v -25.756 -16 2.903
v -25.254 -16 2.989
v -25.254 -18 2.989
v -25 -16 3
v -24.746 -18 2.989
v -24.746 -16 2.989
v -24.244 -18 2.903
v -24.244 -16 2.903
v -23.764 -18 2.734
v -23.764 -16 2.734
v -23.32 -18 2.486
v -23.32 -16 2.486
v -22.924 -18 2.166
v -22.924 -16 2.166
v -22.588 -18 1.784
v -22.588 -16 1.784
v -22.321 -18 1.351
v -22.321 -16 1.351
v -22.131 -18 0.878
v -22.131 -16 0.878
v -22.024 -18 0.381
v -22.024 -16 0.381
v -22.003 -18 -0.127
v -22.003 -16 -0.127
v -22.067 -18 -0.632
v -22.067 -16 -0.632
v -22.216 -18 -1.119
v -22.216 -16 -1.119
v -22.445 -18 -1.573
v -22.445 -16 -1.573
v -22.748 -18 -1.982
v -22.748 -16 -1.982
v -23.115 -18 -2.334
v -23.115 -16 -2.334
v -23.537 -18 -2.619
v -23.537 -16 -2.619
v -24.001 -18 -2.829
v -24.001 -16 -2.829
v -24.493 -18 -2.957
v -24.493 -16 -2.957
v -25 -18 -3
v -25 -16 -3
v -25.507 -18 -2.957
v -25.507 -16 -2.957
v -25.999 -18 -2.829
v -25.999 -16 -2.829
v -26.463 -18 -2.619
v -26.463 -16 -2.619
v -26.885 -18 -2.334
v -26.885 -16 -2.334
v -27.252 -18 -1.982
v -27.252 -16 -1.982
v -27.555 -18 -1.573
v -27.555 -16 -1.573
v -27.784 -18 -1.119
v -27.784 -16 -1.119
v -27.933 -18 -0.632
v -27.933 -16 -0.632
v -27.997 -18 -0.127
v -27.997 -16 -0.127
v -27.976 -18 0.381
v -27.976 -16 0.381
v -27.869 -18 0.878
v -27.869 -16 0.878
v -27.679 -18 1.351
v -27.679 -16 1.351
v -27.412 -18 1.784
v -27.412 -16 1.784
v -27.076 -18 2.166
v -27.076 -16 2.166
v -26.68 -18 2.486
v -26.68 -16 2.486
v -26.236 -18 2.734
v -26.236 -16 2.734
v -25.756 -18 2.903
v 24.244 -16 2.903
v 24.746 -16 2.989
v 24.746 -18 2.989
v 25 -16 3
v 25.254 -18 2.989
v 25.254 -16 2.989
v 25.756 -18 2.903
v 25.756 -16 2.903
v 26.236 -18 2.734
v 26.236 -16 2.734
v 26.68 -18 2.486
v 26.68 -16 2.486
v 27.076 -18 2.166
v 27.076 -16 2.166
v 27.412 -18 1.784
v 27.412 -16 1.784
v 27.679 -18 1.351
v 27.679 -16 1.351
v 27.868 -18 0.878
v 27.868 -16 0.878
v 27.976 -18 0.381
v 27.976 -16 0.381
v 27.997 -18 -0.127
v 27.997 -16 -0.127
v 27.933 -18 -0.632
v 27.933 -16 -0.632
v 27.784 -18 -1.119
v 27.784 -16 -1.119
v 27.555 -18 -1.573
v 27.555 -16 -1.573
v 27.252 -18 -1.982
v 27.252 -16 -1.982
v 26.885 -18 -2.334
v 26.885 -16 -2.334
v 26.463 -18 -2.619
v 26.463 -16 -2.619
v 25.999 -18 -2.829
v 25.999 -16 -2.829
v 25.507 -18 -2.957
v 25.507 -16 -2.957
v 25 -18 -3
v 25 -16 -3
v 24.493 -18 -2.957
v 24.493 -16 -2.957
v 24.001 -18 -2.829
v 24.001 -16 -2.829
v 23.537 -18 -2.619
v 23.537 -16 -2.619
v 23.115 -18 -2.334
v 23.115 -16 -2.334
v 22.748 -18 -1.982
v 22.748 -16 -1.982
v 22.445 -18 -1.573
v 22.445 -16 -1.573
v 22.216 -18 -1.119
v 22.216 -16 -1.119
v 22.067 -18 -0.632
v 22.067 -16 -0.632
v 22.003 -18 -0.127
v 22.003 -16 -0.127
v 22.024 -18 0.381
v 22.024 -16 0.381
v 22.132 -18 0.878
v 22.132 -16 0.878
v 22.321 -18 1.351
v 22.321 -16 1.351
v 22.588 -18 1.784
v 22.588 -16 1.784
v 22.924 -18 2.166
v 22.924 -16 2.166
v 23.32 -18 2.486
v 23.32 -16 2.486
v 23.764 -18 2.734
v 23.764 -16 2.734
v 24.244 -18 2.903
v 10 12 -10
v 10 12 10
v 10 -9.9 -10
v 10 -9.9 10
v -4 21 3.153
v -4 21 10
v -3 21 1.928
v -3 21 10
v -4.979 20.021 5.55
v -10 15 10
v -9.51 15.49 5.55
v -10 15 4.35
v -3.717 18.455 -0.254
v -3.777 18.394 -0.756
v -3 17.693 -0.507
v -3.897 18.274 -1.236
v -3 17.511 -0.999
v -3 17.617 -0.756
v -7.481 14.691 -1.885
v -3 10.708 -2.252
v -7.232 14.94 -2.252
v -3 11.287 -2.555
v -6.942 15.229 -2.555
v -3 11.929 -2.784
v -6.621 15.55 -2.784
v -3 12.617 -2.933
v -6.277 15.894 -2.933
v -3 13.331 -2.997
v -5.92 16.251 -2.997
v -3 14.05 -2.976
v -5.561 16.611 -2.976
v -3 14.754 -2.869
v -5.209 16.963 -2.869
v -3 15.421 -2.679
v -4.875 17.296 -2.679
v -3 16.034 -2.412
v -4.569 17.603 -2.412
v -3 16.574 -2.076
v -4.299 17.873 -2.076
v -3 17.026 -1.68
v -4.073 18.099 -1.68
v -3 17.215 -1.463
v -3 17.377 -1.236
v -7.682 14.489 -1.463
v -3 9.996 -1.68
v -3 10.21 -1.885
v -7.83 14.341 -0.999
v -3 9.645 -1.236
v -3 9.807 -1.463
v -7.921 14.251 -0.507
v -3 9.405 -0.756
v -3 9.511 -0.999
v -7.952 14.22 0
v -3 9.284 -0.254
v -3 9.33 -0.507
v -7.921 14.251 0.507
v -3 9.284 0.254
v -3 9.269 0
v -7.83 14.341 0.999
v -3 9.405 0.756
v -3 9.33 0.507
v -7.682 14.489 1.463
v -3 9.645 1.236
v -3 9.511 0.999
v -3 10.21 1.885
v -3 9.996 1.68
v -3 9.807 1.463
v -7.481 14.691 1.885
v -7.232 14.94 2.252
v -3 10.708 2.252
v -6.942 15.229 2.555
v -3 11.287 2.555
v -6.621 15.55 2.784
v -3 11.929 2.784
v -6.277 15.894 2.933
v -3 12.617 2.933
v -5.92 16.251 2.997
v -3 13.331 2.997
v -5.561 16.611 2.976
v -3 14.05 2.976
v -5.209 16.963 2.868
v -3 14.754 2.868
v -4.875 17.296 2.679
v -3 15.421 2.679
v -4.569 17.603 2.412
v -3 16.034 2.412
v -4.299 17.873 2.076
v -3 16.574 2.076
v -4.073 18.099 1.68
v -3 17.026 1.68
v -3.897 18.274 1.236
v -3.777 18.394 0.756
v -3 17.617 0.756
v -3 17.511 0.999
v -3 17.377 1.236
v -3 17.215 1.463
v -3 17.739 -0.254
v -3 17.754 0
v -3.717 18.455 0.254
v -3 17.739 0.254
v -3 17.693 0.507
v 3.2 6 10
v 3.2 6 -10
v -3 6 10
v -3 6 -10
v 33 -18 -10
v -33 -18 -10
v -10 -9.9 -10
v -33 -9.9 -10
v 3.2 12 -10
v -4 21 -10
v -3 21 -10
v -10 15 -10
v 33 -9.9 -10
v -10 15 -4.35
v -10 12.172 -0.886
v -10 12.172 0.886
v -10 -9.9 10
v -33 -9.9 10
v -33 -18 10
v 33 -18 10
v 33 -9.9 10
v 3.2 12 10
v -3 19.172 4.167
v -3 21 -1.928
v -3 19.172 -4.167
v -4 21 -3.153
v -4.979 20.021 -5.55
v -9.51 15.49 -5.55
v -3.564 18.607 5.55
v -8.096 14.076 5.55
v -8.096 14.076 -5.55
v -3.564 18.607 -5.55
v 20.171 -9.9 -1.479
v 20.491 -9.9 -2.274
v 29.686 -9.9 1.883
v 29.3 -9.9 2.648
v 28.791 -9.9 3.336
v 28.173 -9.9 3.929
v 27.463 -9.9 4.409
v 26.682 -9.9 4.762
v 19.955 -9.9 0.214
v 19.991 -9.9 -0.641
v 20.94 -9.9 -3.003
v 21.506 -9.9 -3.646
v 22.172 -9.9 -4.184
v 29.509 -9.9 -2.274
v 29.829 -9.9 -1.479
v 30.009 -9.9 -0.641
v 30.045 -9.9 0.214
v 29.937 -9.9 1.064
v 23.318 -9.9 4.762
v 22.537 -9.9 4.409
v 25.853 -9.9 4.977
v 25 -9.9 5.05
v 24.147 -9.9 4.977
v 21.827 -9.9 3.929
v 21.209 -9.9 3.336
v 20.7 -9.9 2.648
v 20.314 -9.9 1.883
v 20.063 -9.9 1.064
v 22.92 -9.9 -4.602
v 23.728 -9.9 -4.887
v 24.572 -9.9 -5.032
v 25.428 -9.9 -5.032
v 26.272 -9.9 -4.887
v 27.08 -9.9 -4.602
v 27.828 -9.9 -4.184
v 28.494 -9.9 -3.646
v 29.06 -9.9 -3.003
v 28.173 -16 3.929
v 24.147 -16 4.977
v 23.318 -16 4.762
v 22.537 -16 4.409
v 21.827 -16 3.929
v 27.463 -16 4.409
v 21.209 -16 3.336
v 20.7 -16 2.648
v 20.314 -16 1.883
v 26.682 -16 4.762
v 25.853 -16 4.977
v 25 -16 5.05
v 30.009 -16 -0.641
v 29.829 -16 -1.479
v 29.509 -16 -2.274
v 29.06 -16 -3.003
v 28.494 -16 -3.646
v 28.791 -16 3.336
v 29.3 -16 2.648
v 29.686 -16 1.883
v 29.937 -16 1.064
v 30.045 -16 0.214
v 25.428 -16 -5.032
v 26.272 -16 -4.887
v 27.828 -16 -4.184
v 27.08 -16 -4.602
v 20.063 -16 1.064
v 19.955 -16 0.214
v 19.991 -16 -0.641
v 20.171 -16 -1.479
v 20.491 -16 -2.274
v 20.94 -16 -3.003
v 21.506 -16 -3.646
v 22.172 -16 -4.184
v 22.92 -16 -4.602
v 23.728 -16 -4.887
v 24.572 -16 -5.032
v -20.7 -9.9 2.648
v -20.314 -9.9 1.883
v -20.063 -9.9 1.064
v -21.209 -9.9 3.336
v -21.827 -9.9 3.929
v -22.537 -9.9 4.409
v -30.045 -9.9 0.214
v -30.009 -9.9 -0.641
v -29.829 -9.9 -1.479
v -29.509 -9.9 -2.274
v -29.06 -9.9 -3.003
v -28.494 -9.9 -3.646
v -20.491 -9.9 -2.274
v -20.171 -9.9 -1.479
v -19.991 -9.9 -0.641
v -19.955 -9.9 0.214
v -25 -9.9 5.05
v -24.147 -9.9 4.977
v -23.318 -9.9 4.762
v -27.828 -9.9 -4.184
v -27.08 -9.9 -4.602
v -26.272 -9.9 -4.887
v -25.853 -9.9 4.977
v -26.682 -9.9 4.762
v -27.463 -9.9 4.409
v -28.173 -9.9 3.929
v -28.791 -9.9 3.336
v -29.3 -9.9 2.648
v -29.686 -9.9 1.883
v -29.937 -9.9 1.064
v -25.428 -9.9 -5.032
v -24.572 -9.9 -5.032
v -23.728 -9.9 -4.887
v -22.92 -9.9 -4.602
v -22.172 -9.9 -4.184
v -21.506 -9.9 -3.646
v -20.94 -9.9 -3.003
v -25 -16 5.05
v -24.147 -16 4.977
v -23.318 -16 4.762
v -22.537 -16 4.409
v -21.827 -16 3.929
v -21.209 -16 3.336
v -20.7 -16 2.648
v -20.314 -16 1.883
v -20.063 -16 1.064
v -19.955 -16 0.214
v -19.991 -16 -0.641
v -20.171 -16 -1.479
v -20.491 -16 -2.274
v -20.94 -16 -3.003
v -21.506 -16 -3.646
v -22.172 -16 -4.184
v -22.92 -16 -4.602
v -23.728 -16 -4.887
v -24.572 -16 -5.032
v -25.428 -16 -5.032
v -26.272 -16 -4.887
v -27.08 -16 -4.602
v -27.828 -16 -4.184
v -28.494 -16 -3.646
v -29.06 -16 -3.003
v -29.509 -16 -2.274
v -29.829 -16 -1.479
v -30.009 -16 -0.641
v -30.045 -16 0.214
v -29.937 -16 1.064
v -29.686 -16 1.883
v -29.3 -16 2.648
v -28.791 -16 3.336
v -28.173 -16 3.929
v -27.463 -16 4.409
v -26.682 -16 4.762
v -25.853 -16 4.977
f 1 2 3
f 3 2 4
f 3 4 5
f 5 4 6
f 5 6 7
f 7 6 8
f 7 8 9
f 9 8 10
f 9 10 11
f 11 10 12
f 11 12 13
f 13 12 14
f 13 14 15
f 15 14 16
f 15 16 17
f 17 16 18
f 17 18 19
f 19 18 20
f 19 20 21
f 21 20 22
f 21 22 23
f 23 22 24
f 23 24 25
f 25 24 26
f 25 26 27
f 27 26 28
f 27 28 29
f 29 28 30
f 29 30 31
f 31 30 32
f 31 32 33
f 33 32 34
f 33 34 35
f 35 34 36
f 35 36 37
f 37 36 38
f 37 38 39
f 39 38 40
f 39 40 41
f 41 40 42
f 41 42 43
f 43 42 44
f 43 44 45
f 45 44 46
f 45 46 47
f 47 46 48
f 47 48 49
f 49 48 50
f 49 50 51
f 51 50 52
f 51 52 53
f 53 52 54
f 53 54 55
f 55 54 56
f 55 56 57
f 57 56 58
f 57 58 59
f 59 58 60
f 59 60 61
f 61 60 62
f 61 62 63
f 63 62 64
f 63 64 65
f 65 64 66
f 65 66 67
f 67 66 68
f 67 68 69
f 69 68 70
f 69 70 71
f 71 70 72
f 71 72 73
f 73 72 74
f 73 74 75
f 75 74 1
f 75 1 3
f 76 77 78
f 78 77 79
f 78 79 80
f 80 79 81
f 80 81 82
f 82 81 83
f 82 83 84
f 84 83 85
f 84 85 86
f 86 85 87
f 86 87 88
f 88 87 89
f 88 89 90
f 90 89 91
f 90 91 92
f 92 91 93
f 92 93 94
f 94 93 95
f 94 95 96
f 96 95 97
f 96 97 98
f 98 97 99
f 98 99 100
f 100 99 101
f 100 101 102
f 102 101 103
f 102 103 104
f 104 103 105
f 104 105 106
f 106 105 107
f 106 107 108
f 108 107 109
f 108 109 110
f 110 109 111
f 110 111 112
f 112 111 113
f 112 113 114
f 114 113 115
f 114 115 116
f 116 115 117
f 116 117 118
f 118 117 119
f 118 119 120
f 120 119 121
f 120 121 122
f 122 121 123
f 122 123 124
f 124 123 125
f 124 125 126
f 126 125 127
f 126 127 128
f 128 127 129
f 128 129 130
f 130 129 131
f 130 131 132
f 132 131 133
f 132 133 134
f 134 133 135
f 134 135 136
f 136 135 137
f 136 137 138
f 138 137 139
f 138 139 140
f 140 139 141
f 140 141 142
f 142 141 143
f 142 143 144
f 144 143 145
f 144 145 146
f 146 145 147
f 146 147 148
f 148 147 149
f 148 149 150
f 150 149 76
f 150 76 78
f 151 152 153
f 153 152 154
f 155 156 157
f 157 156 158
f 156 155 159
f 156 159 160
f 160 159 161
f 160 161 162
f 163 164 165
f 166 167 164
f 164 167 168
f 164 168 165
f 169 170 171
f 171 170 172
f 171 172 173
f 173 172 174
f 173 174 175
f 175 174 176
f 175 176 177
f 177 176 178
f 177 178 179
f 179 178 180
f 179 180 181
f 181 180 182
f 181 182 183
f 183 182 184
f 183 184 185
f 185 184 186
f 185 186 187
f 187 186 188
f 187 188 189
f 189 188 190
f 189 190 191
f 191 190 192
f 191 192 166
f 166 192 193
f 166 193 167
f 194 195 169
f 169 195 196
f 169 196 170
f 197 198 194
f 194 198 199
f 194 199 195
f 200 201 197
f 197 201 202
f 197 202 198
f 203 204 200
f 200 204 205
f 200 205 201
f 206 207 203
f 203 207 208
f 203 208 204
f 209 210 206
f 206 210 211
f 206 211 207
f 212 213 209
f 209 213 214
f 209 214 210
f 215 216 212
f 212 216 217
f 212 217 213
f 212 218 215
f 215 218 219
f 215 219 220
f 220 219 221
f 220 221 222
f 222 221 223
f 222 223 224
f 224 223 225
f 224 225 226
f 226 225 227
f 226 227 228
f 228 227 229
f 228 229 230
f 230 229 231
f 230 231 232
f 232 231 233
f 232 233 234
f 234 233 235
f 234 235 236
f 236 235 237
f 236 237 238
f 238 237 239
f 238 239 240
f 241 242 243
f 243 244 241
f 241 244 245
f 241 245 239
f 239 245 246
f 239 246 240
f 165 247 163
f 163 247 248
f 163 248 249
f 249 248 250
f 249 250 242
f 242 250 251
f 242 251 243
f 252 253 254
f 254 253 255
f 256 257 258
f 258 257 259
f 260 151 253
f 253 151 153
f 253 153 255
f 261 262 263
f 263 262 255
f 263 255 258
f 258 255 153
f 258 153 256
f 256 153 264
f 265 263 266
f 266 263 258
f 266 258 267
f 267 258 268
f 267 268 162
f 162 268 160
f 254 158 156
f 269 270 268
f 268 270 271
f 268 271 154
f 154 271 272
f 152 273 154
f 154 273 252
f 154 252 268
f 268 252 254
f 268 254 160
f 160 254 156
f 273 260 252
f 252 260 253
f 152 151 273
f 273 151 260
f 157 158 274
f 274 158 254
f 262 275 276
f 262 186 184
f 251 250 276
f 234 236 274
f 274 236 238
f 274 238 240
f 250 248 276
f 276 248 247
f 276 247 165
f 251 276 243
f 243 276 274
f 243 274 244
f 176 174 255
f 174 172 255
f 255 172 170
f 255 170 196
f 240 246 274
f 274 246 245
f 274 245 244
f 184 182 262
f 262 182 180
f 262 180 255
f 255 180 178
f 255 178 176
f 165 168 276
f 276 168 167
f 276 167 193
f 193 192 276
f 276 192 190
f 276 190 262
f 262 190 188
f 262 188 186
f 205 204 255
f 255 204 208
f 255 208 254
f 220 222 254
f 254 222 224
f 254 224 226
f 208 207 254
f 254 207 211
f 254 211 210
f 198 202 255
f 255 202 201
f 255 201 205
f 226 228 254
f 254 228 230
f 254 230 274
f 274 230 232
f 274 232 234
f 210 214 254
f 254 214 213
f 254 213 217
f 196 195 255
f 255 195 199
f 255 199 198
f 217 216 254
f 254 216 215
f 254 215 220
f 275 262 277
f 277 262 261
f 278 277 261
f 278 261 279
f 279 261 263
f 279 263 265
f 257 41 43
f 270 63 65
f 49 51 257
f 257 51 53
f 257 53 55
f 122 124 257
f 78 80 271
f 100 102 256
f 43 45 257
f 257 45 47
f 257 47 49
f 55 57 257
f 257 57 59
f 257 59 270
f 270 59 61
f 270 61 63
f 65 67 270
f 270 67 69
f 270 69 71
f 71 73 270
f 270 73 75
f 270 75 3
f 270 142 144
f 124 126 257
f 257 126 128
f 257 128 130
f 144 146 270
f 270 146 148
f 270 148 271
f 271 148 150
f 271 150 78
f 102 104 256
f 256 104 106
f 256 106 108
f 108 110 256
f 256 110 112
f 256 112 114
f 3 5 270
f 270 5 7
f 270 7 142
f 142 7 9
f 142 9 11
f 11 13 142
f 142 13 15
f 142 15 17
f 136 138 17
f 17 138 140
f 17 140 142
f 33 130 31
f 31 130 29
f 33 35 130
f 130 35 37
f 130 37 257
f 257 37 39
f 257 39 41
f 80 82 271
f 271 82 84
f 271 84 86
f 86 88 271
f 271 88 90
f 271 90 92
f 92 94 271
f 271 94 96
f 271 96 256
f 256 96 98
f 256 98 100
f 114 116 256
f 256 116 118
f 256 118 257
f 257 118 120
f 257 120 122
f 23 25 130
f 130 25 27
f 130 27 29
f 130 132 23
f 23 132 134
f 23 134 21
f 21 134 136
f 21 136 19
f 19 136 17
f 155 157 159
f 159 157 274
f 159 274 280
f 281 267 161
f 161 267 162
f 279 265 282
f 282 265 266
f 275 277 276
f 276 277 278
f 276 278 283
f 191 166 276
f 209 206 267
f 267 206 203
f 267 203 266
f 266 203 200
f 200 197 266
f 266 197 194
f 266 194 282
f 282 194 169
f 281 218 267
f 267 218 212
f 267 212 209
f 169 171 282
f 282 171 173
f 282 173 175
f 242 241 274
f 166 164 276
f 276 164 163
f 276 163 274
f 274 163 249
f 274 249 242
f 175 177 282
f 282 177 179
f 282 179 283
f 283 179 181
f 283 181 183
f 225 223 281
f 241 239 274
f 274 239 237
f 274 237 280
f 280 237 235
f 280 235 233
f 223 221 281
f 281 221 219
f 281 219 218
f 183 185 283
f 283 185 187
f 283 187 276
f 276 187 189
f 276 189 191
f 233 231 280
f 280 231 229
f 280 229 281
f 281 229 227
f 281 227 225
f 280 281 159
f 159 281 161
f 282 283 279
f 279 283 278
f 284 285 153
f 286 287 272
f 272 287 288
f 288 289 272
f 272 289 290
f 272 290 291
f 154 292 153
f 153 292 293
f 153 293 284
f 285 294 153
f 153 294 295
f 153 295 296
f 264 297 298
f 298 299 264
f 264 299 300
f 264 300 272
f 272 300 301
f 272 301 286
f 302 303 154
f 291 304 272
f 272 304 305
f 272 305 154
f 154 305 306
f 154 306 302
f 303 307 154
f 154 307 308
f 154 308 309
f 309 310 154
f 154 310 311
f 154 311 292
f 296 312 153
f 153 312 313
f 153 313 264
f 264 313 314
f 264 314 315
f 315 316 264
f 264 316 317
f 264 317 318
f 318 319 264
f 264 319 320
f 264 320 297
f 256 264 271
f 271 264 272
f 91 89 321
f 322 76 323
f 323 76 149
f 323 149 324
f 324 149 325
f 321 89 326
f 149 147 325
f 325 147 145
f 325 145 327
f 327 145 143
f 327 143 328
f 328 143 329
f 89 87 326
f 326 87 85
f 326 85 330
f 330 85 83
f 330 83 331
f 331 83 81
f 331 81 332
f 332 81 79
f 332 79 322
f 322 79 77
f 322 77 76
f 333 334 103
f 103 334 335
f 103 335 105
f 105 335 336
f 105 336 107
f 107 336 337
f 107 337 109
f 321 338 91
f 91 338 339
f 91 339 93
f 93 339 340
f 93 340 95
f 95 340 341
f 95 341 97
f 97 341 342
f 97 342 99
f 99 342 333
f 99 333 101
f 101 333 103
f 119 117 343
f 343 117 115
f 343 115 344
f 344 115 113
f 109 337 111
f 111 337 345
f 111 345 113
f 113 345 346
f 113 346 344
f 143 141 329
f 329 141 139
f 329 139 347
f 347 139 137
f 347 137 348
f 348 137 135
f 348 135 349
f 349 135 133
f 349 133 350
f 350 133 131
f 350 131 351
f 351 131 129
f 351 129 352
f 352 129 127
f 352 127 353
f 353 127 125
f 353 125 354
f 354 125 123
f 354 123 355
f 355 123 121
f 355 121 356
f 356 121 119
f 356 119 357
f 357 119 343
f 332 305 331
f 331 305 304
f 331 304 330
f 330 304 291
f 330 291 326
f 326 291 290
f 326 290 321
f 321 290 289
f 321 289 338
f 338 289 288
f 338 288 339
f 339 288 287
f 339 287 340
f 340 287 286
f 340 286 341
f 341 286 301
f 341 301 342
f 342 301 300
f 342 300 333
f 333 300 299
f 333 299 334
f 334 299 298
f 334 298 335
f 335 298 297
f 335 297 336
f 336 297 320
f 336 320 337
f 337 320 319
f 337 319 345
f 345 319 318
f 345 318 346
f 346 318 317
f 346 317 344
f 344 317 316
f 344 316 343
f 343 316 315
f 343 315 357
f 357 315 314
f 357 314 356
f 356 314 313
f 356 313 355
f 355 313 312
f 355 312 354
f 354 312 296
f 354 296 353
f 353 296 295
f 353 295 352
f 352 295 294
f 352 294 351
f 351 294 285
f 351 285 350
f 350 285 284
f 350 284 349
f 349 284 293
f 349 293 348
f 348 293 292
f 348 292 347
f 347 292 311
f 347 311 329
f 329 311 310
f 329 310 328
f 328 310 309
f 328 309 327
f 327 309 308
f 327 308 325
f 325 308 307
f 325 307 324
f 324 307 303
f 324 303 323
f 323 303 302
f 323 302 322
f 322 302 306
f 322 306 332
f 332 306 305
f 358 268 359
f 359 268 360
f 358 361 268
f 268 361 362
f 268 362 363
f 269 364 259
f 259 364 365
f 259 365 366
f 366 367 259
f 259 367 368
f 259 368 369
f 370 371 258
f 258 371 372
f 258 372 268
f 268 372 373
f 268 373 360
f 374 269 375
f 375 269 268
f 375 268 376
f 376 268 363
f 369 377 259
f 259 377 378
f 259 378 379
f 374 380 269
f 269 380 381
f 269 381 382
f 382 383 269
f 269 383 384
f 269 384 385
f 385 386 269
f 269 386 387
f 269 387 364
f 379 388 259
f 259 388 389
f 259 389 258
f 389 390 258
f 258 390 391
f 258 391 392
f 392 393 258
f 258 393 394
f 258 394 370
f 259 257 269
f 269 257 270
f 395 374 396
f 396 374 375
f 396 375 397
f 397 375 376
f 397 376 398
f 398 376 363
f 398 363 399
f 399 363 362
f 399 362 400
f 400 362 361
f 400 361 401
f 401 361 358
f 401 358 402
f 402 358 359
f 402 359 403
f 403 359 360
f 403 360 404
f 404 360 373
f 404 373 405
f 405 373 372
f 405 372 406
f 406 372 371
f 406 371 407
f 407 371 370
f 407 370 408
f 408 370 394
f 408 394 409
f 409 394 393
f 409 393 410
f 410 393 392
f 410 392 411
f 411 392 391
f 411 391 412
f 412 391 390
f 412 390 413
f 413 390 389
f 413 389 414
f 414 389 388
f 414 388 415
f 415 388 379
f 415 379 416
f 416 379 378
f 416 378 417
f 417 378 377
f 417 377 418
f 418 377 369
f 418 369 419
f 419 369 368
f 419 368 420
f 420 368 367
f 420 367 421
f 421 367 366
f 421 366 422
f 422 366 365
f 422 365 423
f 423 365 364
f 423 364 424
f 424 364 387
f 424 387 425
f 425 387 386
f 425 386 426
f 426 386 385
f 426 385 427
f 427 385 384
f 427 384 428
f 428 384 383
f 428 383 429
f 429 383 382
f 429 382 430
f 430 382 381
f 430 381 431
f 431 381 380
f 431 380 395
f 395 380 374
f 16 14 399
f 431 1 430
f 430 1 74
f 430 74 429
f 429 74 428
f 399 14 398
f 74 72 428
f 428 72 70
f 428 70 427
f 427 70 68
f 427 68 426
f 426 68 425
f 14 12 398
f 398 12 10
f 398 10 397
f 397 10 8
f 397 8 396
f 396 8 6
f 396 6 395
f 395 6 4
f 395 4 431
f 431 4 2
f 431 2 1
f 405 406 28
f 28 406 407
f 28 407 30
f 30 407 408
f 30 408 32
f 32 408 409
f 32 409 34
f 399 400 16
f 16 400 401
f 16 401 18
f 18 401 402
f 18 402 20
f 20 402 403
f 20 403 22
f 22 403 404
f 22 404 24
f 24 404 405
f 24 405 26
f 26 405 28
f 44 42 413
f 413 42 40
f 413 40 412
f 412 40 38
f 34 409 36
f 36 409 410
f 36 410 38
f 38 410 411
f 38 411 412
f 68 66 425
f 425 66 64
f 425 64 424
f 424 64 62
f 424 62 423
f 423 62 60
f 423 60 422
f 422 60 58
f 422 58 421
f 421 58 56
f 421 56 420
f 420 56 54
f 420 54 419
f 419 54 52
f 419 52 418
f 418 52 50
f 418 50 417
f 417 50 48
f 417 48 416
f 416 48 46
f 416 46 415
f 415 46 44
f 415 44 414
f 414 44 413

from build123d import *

# Parameters (mm, degrees)
SKETCH1_W           = 20
SKETCH1_H           = 20
BOSS_EXTRUDE1_DEPTH = 6
SKETCH2_W           = 6.8
SKETCH2_H           = 20
BOSS_EXTRUDE2_DEPTH = 6
SKETCH3_W           = 7
SKETCH3_H           = 20
BOSS_EXTRUDE3_DEPTH = 15
CHAMFER1_SIZE       = 6
SKETCH4_R           = 3
CUT_EXTRUDE1_DEPTH  = 10
SKETCH5_W           = 20
SKETCH5_H           = 20
BOSS_EXTRUDE4_DEPTH = 18
CUT_EXTRUDE2_DEPTH  = 2
SKETCH9_W           = 20
SKETCH9_H           = 8.1
BOSS_EXTRUDE5_DEPTH = 23
CUT_EXTRUDE5_REACH  = 54.058
SKETCH10_R          = 3
SKETCH11_R          = 5.05
CUT_EXTRUDE6_DEPTH  = 6.1


with BuildPart() as part:
    # Sketch1 → Boss-Extrude1 (new body)
    with BuildSketch(Plane(origin=(0, 0, 0), x_dir=(1, 0, 0), z_dir=(0, 1, 0))):
        Rectangle(SKETCH1_W, SKETCH1_H)
    extrude(amount=BOSS_EXTRUDE1_DEPTH)

    # Sketch2 → Boss-Extrude2 (add)
    with BuildSketch(Plane(origin=(0, 6, 0), x_dir=(1, 0, 0), z_dir=(0, 1, 0))):
        with Locations((6.6, 0)):
            Rectangle(SKETCH2_W, SKETCH2_H)
    extrude(amount=BOSS_EXTRUDE2_DEPTH)

    # Sketch3 → Boss-Extrude3 (add)
    with BuildSketch(Plane(origin=(0, 6, 0), x_dir=(1, 0, 0), z_dir=(0, 1, 0))):
        with Locations((-6.5, 0)):
            Rectangle(SKETCH3_W, SKETCH3_H)
    extrude(amount=BOSS_EXTRUDE3_DEPTH)

    # Chamfer1
    chamfer1_edges = [part.edges().sort_by_distance(p)[0] for p in [
        (-10, 21, 0),
    ]]
    chamfer(chamfer1_edges, length=CHAMFER1_SIZE)

    # Sketch4 → Cut-Extrude1 (cut)
    with BuildSketch(Plane(origin=(-12.5, 12.5, 0), x_dir=(0, 0, 1), z_dir=(-0.7071067811865489, 0.7071067811865462, 0))):
        with Locations(Location((0, 7.432512212, 0), (0, 0, 270))):
            Circle(SKETCH4_R)
    extrude(amount=-CUT_EXTRUDE1_DEPTH, mode=Mode.SUBTRACT)

    # Sketch5 → Boss-Extrude4 (add)
    with BuildSketch(Plane.XZ):
        Rectangle(SKETCH5_W, SKETCH5_H)
    extrude(amount=BOSS_EXTRUDE4_DEPTH)

    # Sketch6 → Cut-Extrude2 (cut)
    with BuildSketch(Plane(origin=(-12.5, 12.5, 0), x_dir=(0, 0, 1), z_dir=(-0.7071067811865489, 0.7071067811865462, 0))):
        Polygon((0, 13.8411002), (-5.55, 10.636806206), (-5.55, 4.228218218), (0, 1.023924224), (5.55, 4.228218218), (5.55, 10.636806206), align=None)
    extrude(amount=-CUT_EXTRUDE2_DEPTH, mode=Mode.SUBTRACT)

    # Sketch9 → Boss-Extrude5 (add)
    with BuildSketch(Plane(origin=(10, 0, 0), x_dir=(0, 0, -1), z_dir=(1, 0, 0))):
        with Locations((0, -13.95)):
            Rectangle(SKETCH9_W, SKETCH9_H)
    boss_extrude5 = extrude(amount=BOSS_EXTRUDE5_DEPTH)

    # Sketch10 → Cut-Extrude5 (cut, up to next)
    with BuildSketch(Plane.XZ.offset(18), mode=Mode.PRIVATE) as cut_extrude5_sk1:
        with Locations(Location((25, 0, 0), (0, 0, 270))):
            Circle(SKETCH10_R)
    cut_extrude5_tool1 = extrude(cut_extrude5_sk1.sketch, amount=-CUT_EXTRUDE5_REACH, mode=Mode.PRIVATE) & part.part
    cut_extrude5 = cut_extrude5_tool1.solids().sort_by_distance((25, -18, 0))[0]
    add(cut_extrude5, mode=Mode.SUBTRACT)

    # Sketch11 → Cut-Extrude6 (cut)
    with BuildSketch(Plane(origin=(0, -9.9, 0), x_dir=(1, 0, 0), z_dir=(0, 1, 0))):
        with Locations(Location((25, 0, 0), (0, 0, 270))):
            Circle(SKETCH11_R)
    cut_extrude6 = extrude(amount=-CUT_EXTRUDE6_DEPTH, mode=Mode.SUBTRACT)

    # Mirror1: Boss-Extrude5, Cut-Extrude5, Cut-Extrude6 across plane
    add(boss_extrude5.mirror(Plane(origin=(0, 0, 0), x_dir=(0, 0, 1), z_dir=(1, 0, 0))))
    add(cut_extrude5.mirror(Plane(origin=(0, 0, 0), x_dir=(0, 0, 1), z_dir=(1, 0, 0))), mode=Mode.SUBTRACT)
    add(cut_extrude6.mirror(Plane(origin=(0, 0, 0), x_dir=(0, 0, 1), z_dir=(1, 0, 0))), mode=Mode.SUBTRACT)


solid = part.part
